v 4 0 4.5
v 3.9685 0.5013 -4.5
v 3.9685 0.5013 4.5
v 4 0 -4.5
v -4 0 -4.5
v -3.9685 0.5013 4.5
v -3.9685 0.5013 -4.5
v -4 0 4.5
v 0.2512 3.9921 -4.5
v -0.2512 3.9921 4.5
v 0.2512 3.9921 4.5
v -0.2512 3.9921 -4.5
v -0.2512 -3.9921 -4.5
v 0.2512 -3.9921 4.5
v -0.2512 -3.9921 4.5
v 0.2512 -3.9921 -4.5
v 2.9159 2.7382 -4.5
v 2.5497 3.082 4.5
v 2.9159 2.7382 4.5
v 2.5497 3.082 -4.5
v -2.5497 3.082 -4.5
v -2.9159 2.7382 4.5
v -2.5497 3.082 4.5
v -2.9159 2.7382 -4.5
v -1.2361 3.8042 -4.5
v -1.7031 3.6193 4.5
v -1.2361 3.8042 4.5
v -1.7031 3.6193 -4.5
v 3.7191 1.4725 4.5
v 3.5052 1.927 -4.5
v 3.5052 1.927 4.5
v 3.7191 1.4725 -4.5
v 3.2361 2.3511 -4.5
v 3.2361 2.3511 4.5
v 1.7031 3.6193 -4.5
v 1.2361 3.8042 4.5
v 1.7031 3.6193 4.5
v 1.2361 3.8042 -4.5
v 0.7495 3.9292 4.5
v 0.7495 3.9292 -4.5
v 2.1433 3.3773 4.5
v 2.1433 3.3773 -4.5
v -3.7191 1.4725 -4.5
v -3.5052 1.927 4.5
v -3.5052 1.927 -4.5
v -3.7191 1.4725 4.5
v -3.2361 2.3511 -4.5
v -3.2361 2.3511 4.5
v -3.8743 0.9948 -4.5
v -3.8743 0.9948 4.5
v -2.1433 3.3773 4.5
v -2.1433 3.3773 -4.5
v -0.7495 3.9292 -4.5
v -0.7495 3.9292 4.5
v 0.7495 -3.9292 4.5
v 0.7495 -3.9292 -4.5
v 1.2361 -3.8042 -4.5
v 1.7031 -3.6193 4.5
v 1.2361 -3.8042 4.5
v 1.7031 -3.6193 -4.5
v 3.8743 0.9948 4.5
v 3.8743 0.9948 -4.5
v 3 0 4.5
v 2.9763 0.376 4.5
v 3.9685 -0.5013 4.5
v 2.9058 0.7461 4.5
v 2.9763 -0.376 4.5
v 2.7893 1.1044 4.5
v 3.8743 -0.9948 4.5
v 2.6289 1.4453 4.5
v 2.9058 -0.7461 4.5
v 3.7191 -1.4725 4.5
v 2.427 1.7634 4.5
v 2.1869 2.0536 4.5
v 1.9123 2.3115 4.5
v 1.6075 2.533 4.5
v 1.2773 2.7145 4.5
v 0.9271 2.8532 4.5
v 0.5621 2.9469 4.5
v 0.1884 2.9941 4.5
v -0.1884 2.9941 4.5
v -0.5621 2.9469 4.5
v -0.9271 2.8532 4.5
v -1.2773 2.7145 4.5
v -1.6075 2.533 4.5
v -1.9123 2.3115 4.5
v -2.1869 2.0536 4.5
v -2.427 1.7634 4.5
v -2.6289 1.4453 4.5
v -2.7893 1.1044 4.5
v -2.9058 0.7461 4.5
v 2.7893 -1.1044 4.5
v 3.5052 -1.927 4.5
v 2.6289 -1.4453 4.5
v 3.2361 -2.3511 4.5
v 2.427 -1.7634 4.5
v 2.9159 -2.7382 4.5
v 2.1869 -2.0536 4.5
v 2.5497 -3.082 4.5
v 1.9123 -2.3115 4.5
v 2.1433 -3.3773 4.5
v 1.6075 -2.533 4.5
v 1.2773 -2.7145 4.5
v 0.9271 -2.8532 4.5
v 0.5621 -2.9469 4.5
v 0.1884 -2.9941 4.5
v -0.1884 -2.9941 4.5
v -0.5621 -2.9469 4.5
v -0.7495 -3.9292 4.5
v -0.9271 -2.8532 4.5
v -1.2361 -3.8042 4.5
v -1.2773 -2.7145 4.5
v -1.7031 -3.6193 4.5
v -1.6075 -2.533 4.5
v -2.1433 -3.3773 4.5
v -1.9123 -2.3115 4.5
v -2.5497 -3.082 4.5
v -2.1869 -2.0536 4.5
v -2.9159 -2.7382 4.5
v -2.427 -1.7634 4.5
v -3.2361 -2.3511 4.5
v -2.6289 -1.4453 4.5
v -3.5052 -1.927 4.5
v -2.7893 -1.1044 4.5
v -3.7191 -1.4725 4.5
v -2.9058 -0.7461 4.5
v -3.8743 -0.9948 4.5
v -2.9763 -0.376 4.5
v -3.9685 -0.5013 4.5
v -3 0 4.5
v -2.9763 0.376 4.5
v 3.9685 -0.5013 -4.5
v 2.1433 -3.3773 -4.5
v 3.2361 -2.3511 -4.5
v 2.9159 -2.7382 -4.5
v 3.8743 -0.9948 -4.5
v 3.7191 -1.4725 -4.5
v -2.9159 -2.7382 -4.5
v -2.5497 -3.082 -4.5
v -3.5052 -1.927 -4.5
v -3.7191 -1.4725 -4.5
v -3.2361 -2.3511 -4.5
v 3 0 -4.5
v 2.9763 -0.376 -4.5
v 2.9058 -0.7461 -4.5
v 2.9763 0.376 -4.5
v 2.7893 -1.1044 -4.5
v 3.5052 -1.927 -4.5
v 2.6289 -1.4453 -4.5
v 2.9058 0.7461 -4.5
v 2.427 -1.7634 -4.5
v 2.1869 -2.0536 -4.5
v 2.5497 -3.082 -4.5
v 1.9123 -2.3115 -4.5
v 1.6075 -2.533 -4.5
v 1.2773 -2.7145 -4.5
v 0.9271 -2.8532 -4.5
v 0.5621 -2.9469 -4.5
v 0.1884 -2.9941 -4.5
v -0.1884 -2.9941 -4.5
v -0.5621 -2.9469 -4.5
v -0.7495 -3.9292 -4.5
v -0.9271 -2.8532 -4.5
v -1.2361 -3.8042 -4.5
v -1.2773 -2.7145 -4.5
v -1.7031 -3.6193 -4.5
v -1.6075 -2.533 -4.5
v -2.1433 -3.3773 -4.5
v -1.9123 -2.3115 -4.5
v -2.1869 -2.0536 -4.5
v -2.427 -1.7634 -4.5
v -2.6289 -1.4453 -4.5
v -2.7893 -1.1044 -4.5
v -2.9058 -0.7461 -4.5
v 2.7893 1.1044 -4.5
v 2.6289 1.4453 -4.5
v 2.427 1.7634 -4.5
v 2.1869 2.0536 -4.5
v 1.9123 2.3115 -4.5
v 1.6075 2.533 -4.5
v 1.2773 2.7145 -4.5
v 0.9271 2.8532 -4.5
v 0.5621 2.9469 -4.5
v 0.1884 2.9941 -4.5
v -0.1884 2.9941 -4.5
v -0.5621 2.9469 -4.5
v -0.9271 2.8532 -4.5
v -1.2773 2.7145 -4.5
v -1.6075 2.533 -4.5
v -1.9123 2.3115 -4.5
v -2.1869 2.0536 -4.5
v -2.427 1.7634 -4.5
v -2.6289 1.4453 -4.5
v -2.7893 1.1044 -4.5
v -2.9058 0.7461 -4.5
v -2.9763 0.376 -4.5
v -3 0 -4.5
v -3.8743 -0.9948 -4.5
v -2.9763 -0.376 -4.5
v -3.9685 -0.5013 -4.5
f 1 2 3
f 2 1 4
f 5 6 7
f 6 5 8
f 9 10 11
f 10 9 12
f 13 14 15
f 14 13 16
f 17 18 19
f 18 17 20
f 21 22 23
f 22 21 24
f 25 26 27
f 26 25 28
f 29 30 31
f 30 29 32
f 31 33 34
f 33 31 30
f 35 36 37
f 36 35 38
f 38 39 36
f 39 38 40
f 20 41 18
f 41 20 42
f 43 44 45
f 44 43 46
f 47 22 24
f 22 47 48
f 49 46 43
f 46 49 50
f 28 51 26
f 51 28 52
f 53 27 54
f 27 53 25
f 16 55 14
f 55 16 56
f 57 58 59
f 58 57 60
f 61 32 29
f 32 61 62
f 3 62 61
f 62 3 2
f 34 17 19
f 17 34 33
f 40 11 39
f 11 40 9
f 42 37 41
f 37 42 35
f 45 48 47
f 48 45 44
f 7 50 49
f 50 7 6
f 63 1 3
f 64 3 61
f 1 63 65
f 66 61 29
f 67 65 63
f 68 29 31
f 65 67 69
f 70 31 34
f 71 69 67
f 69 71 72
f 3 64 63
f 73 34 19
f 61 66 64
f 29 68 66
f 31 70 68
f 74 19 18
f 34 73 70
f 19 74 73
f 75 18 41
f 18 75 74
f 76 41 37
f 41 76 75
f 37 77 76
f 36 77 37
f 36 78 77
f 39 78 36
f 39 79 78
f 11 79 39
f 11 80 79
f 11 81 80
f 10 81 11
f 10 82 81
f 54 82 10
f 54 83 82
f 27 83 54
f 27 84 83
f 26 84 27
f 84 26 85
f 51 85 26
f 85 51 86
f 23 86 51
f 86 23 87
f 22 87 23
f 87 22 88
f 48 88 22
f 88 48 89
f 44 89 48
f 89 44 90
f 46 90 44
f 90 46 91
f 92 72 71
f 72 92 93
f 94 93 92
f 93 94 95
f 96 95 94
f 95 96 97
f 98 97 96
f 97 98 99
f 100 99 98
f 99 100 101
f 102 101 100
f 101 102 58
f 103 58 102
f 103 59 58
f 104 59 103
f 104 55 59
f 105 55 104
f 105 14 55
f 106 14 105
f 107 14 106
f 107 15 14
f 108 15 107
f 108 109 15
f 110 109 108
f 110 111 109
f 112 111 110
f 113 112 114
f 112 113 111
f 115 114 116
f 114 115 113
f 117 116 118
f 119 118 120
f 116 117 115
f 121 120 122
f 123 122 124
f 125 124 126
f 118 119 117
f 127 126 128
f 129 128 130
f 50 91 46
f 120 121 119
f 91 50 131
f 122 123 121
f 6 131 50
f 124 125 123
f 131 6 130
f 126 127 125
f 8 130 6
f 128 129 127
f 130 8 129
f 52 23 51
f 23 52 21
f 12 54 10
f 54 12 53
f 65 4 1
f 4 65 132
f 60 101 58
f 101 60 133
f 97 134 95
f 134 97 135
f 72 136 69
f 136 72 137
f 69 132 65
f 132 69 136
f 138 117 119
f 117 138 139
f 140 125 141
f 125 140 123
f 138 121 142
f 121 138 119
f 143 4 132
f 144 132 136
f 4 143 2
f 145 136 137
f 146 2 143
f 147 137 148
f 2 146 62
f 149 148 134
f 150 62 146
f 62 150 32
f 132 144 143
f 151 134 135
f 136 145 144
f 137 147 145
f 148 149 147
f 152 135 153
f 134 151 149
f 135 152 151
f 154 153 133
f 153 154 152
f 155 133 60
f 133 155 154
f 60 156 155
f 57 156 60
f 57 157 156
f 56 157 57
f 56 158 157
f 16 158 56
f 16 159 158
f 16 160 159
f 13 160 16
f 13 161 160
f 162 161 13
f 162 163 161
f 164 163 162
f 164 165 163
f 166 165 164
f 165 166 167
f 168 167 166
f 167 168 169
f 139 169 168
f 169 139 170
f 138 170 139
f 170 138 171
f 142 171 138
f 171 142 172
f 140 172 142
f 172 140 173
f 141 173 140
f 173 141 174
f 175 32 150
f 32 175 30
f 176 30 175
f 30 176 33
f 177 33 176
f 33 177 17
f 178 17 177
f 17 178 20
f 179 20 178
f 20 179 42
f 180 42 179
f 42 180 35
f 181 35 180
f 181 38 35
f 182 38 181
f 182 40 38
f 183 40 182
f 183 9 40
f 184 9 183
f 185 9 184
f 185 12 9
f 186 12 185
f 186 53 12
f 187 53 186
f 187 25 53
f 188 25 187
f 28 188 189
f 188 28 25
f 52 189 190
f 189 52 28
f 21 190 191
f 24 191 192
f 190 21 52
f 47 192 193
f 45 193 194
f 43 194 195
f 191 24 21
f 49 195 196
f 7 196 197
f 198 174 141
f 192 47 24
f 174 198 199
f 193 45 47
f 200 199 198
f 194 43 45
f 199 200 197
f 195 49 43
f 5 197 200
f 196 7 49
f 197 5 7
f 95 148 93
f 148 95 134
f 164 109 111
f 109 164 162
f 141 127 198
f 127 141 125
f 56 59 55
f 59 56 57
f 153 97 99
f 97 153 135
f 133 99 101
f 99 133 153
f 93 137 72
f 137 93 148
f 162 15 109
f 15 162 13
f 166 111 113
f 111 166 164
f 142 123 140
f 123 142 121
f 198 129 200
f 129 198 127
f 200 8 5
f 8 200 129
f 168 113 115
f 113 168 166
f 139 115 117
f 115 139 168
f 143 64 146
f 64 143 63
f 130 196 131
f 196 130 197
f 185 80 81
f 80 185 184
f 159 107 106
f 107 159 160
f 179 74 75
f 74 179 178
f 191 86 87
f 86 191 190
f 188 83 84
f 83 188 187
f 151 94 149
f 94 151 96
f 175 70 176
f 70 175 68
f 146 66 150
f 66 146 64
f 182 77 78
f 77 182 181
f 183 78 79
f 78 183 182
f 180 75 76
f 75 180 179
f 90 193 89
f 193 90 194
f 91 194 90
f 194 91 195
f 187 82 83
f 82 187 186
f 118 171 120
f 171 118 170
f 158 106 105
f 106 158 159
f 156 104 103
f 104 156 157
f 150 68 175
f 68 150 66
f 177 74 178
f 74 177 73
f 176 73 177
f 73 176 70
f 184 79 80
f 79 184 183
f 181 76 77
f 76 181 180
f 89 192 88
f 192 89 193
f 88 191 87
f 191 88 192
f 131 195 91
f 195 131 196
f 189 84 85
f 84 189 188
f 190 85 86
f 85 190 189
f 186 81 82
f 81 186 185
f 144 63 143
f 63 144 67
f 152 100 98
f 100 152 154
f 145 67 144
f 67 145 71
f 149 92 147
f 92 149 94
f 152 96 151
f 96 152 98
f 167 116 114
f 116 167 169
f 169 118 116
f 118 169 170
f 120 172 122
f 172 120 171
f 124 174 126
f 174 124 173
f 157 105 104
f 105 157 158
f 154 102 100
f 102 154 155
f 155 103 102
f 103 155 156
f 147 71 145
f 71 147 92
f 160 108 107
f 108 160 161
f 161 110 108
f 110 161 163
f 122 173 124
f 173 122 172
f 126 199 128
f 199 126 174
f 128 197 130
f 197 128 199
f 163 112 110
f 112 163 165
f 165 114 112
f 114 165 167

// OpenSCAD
$fn = 50;


difference() {
	union() {
		translate(v = [0, 0, -4.5000000000]) {
			cylinder(h = 9, r = 4.0000000000);
		}
	}
	union() {
		translate(v = [0, 0, -100.0000000000]) {
			cylinder(h = 200, r = 3.0000000000);
		}
	}
}
